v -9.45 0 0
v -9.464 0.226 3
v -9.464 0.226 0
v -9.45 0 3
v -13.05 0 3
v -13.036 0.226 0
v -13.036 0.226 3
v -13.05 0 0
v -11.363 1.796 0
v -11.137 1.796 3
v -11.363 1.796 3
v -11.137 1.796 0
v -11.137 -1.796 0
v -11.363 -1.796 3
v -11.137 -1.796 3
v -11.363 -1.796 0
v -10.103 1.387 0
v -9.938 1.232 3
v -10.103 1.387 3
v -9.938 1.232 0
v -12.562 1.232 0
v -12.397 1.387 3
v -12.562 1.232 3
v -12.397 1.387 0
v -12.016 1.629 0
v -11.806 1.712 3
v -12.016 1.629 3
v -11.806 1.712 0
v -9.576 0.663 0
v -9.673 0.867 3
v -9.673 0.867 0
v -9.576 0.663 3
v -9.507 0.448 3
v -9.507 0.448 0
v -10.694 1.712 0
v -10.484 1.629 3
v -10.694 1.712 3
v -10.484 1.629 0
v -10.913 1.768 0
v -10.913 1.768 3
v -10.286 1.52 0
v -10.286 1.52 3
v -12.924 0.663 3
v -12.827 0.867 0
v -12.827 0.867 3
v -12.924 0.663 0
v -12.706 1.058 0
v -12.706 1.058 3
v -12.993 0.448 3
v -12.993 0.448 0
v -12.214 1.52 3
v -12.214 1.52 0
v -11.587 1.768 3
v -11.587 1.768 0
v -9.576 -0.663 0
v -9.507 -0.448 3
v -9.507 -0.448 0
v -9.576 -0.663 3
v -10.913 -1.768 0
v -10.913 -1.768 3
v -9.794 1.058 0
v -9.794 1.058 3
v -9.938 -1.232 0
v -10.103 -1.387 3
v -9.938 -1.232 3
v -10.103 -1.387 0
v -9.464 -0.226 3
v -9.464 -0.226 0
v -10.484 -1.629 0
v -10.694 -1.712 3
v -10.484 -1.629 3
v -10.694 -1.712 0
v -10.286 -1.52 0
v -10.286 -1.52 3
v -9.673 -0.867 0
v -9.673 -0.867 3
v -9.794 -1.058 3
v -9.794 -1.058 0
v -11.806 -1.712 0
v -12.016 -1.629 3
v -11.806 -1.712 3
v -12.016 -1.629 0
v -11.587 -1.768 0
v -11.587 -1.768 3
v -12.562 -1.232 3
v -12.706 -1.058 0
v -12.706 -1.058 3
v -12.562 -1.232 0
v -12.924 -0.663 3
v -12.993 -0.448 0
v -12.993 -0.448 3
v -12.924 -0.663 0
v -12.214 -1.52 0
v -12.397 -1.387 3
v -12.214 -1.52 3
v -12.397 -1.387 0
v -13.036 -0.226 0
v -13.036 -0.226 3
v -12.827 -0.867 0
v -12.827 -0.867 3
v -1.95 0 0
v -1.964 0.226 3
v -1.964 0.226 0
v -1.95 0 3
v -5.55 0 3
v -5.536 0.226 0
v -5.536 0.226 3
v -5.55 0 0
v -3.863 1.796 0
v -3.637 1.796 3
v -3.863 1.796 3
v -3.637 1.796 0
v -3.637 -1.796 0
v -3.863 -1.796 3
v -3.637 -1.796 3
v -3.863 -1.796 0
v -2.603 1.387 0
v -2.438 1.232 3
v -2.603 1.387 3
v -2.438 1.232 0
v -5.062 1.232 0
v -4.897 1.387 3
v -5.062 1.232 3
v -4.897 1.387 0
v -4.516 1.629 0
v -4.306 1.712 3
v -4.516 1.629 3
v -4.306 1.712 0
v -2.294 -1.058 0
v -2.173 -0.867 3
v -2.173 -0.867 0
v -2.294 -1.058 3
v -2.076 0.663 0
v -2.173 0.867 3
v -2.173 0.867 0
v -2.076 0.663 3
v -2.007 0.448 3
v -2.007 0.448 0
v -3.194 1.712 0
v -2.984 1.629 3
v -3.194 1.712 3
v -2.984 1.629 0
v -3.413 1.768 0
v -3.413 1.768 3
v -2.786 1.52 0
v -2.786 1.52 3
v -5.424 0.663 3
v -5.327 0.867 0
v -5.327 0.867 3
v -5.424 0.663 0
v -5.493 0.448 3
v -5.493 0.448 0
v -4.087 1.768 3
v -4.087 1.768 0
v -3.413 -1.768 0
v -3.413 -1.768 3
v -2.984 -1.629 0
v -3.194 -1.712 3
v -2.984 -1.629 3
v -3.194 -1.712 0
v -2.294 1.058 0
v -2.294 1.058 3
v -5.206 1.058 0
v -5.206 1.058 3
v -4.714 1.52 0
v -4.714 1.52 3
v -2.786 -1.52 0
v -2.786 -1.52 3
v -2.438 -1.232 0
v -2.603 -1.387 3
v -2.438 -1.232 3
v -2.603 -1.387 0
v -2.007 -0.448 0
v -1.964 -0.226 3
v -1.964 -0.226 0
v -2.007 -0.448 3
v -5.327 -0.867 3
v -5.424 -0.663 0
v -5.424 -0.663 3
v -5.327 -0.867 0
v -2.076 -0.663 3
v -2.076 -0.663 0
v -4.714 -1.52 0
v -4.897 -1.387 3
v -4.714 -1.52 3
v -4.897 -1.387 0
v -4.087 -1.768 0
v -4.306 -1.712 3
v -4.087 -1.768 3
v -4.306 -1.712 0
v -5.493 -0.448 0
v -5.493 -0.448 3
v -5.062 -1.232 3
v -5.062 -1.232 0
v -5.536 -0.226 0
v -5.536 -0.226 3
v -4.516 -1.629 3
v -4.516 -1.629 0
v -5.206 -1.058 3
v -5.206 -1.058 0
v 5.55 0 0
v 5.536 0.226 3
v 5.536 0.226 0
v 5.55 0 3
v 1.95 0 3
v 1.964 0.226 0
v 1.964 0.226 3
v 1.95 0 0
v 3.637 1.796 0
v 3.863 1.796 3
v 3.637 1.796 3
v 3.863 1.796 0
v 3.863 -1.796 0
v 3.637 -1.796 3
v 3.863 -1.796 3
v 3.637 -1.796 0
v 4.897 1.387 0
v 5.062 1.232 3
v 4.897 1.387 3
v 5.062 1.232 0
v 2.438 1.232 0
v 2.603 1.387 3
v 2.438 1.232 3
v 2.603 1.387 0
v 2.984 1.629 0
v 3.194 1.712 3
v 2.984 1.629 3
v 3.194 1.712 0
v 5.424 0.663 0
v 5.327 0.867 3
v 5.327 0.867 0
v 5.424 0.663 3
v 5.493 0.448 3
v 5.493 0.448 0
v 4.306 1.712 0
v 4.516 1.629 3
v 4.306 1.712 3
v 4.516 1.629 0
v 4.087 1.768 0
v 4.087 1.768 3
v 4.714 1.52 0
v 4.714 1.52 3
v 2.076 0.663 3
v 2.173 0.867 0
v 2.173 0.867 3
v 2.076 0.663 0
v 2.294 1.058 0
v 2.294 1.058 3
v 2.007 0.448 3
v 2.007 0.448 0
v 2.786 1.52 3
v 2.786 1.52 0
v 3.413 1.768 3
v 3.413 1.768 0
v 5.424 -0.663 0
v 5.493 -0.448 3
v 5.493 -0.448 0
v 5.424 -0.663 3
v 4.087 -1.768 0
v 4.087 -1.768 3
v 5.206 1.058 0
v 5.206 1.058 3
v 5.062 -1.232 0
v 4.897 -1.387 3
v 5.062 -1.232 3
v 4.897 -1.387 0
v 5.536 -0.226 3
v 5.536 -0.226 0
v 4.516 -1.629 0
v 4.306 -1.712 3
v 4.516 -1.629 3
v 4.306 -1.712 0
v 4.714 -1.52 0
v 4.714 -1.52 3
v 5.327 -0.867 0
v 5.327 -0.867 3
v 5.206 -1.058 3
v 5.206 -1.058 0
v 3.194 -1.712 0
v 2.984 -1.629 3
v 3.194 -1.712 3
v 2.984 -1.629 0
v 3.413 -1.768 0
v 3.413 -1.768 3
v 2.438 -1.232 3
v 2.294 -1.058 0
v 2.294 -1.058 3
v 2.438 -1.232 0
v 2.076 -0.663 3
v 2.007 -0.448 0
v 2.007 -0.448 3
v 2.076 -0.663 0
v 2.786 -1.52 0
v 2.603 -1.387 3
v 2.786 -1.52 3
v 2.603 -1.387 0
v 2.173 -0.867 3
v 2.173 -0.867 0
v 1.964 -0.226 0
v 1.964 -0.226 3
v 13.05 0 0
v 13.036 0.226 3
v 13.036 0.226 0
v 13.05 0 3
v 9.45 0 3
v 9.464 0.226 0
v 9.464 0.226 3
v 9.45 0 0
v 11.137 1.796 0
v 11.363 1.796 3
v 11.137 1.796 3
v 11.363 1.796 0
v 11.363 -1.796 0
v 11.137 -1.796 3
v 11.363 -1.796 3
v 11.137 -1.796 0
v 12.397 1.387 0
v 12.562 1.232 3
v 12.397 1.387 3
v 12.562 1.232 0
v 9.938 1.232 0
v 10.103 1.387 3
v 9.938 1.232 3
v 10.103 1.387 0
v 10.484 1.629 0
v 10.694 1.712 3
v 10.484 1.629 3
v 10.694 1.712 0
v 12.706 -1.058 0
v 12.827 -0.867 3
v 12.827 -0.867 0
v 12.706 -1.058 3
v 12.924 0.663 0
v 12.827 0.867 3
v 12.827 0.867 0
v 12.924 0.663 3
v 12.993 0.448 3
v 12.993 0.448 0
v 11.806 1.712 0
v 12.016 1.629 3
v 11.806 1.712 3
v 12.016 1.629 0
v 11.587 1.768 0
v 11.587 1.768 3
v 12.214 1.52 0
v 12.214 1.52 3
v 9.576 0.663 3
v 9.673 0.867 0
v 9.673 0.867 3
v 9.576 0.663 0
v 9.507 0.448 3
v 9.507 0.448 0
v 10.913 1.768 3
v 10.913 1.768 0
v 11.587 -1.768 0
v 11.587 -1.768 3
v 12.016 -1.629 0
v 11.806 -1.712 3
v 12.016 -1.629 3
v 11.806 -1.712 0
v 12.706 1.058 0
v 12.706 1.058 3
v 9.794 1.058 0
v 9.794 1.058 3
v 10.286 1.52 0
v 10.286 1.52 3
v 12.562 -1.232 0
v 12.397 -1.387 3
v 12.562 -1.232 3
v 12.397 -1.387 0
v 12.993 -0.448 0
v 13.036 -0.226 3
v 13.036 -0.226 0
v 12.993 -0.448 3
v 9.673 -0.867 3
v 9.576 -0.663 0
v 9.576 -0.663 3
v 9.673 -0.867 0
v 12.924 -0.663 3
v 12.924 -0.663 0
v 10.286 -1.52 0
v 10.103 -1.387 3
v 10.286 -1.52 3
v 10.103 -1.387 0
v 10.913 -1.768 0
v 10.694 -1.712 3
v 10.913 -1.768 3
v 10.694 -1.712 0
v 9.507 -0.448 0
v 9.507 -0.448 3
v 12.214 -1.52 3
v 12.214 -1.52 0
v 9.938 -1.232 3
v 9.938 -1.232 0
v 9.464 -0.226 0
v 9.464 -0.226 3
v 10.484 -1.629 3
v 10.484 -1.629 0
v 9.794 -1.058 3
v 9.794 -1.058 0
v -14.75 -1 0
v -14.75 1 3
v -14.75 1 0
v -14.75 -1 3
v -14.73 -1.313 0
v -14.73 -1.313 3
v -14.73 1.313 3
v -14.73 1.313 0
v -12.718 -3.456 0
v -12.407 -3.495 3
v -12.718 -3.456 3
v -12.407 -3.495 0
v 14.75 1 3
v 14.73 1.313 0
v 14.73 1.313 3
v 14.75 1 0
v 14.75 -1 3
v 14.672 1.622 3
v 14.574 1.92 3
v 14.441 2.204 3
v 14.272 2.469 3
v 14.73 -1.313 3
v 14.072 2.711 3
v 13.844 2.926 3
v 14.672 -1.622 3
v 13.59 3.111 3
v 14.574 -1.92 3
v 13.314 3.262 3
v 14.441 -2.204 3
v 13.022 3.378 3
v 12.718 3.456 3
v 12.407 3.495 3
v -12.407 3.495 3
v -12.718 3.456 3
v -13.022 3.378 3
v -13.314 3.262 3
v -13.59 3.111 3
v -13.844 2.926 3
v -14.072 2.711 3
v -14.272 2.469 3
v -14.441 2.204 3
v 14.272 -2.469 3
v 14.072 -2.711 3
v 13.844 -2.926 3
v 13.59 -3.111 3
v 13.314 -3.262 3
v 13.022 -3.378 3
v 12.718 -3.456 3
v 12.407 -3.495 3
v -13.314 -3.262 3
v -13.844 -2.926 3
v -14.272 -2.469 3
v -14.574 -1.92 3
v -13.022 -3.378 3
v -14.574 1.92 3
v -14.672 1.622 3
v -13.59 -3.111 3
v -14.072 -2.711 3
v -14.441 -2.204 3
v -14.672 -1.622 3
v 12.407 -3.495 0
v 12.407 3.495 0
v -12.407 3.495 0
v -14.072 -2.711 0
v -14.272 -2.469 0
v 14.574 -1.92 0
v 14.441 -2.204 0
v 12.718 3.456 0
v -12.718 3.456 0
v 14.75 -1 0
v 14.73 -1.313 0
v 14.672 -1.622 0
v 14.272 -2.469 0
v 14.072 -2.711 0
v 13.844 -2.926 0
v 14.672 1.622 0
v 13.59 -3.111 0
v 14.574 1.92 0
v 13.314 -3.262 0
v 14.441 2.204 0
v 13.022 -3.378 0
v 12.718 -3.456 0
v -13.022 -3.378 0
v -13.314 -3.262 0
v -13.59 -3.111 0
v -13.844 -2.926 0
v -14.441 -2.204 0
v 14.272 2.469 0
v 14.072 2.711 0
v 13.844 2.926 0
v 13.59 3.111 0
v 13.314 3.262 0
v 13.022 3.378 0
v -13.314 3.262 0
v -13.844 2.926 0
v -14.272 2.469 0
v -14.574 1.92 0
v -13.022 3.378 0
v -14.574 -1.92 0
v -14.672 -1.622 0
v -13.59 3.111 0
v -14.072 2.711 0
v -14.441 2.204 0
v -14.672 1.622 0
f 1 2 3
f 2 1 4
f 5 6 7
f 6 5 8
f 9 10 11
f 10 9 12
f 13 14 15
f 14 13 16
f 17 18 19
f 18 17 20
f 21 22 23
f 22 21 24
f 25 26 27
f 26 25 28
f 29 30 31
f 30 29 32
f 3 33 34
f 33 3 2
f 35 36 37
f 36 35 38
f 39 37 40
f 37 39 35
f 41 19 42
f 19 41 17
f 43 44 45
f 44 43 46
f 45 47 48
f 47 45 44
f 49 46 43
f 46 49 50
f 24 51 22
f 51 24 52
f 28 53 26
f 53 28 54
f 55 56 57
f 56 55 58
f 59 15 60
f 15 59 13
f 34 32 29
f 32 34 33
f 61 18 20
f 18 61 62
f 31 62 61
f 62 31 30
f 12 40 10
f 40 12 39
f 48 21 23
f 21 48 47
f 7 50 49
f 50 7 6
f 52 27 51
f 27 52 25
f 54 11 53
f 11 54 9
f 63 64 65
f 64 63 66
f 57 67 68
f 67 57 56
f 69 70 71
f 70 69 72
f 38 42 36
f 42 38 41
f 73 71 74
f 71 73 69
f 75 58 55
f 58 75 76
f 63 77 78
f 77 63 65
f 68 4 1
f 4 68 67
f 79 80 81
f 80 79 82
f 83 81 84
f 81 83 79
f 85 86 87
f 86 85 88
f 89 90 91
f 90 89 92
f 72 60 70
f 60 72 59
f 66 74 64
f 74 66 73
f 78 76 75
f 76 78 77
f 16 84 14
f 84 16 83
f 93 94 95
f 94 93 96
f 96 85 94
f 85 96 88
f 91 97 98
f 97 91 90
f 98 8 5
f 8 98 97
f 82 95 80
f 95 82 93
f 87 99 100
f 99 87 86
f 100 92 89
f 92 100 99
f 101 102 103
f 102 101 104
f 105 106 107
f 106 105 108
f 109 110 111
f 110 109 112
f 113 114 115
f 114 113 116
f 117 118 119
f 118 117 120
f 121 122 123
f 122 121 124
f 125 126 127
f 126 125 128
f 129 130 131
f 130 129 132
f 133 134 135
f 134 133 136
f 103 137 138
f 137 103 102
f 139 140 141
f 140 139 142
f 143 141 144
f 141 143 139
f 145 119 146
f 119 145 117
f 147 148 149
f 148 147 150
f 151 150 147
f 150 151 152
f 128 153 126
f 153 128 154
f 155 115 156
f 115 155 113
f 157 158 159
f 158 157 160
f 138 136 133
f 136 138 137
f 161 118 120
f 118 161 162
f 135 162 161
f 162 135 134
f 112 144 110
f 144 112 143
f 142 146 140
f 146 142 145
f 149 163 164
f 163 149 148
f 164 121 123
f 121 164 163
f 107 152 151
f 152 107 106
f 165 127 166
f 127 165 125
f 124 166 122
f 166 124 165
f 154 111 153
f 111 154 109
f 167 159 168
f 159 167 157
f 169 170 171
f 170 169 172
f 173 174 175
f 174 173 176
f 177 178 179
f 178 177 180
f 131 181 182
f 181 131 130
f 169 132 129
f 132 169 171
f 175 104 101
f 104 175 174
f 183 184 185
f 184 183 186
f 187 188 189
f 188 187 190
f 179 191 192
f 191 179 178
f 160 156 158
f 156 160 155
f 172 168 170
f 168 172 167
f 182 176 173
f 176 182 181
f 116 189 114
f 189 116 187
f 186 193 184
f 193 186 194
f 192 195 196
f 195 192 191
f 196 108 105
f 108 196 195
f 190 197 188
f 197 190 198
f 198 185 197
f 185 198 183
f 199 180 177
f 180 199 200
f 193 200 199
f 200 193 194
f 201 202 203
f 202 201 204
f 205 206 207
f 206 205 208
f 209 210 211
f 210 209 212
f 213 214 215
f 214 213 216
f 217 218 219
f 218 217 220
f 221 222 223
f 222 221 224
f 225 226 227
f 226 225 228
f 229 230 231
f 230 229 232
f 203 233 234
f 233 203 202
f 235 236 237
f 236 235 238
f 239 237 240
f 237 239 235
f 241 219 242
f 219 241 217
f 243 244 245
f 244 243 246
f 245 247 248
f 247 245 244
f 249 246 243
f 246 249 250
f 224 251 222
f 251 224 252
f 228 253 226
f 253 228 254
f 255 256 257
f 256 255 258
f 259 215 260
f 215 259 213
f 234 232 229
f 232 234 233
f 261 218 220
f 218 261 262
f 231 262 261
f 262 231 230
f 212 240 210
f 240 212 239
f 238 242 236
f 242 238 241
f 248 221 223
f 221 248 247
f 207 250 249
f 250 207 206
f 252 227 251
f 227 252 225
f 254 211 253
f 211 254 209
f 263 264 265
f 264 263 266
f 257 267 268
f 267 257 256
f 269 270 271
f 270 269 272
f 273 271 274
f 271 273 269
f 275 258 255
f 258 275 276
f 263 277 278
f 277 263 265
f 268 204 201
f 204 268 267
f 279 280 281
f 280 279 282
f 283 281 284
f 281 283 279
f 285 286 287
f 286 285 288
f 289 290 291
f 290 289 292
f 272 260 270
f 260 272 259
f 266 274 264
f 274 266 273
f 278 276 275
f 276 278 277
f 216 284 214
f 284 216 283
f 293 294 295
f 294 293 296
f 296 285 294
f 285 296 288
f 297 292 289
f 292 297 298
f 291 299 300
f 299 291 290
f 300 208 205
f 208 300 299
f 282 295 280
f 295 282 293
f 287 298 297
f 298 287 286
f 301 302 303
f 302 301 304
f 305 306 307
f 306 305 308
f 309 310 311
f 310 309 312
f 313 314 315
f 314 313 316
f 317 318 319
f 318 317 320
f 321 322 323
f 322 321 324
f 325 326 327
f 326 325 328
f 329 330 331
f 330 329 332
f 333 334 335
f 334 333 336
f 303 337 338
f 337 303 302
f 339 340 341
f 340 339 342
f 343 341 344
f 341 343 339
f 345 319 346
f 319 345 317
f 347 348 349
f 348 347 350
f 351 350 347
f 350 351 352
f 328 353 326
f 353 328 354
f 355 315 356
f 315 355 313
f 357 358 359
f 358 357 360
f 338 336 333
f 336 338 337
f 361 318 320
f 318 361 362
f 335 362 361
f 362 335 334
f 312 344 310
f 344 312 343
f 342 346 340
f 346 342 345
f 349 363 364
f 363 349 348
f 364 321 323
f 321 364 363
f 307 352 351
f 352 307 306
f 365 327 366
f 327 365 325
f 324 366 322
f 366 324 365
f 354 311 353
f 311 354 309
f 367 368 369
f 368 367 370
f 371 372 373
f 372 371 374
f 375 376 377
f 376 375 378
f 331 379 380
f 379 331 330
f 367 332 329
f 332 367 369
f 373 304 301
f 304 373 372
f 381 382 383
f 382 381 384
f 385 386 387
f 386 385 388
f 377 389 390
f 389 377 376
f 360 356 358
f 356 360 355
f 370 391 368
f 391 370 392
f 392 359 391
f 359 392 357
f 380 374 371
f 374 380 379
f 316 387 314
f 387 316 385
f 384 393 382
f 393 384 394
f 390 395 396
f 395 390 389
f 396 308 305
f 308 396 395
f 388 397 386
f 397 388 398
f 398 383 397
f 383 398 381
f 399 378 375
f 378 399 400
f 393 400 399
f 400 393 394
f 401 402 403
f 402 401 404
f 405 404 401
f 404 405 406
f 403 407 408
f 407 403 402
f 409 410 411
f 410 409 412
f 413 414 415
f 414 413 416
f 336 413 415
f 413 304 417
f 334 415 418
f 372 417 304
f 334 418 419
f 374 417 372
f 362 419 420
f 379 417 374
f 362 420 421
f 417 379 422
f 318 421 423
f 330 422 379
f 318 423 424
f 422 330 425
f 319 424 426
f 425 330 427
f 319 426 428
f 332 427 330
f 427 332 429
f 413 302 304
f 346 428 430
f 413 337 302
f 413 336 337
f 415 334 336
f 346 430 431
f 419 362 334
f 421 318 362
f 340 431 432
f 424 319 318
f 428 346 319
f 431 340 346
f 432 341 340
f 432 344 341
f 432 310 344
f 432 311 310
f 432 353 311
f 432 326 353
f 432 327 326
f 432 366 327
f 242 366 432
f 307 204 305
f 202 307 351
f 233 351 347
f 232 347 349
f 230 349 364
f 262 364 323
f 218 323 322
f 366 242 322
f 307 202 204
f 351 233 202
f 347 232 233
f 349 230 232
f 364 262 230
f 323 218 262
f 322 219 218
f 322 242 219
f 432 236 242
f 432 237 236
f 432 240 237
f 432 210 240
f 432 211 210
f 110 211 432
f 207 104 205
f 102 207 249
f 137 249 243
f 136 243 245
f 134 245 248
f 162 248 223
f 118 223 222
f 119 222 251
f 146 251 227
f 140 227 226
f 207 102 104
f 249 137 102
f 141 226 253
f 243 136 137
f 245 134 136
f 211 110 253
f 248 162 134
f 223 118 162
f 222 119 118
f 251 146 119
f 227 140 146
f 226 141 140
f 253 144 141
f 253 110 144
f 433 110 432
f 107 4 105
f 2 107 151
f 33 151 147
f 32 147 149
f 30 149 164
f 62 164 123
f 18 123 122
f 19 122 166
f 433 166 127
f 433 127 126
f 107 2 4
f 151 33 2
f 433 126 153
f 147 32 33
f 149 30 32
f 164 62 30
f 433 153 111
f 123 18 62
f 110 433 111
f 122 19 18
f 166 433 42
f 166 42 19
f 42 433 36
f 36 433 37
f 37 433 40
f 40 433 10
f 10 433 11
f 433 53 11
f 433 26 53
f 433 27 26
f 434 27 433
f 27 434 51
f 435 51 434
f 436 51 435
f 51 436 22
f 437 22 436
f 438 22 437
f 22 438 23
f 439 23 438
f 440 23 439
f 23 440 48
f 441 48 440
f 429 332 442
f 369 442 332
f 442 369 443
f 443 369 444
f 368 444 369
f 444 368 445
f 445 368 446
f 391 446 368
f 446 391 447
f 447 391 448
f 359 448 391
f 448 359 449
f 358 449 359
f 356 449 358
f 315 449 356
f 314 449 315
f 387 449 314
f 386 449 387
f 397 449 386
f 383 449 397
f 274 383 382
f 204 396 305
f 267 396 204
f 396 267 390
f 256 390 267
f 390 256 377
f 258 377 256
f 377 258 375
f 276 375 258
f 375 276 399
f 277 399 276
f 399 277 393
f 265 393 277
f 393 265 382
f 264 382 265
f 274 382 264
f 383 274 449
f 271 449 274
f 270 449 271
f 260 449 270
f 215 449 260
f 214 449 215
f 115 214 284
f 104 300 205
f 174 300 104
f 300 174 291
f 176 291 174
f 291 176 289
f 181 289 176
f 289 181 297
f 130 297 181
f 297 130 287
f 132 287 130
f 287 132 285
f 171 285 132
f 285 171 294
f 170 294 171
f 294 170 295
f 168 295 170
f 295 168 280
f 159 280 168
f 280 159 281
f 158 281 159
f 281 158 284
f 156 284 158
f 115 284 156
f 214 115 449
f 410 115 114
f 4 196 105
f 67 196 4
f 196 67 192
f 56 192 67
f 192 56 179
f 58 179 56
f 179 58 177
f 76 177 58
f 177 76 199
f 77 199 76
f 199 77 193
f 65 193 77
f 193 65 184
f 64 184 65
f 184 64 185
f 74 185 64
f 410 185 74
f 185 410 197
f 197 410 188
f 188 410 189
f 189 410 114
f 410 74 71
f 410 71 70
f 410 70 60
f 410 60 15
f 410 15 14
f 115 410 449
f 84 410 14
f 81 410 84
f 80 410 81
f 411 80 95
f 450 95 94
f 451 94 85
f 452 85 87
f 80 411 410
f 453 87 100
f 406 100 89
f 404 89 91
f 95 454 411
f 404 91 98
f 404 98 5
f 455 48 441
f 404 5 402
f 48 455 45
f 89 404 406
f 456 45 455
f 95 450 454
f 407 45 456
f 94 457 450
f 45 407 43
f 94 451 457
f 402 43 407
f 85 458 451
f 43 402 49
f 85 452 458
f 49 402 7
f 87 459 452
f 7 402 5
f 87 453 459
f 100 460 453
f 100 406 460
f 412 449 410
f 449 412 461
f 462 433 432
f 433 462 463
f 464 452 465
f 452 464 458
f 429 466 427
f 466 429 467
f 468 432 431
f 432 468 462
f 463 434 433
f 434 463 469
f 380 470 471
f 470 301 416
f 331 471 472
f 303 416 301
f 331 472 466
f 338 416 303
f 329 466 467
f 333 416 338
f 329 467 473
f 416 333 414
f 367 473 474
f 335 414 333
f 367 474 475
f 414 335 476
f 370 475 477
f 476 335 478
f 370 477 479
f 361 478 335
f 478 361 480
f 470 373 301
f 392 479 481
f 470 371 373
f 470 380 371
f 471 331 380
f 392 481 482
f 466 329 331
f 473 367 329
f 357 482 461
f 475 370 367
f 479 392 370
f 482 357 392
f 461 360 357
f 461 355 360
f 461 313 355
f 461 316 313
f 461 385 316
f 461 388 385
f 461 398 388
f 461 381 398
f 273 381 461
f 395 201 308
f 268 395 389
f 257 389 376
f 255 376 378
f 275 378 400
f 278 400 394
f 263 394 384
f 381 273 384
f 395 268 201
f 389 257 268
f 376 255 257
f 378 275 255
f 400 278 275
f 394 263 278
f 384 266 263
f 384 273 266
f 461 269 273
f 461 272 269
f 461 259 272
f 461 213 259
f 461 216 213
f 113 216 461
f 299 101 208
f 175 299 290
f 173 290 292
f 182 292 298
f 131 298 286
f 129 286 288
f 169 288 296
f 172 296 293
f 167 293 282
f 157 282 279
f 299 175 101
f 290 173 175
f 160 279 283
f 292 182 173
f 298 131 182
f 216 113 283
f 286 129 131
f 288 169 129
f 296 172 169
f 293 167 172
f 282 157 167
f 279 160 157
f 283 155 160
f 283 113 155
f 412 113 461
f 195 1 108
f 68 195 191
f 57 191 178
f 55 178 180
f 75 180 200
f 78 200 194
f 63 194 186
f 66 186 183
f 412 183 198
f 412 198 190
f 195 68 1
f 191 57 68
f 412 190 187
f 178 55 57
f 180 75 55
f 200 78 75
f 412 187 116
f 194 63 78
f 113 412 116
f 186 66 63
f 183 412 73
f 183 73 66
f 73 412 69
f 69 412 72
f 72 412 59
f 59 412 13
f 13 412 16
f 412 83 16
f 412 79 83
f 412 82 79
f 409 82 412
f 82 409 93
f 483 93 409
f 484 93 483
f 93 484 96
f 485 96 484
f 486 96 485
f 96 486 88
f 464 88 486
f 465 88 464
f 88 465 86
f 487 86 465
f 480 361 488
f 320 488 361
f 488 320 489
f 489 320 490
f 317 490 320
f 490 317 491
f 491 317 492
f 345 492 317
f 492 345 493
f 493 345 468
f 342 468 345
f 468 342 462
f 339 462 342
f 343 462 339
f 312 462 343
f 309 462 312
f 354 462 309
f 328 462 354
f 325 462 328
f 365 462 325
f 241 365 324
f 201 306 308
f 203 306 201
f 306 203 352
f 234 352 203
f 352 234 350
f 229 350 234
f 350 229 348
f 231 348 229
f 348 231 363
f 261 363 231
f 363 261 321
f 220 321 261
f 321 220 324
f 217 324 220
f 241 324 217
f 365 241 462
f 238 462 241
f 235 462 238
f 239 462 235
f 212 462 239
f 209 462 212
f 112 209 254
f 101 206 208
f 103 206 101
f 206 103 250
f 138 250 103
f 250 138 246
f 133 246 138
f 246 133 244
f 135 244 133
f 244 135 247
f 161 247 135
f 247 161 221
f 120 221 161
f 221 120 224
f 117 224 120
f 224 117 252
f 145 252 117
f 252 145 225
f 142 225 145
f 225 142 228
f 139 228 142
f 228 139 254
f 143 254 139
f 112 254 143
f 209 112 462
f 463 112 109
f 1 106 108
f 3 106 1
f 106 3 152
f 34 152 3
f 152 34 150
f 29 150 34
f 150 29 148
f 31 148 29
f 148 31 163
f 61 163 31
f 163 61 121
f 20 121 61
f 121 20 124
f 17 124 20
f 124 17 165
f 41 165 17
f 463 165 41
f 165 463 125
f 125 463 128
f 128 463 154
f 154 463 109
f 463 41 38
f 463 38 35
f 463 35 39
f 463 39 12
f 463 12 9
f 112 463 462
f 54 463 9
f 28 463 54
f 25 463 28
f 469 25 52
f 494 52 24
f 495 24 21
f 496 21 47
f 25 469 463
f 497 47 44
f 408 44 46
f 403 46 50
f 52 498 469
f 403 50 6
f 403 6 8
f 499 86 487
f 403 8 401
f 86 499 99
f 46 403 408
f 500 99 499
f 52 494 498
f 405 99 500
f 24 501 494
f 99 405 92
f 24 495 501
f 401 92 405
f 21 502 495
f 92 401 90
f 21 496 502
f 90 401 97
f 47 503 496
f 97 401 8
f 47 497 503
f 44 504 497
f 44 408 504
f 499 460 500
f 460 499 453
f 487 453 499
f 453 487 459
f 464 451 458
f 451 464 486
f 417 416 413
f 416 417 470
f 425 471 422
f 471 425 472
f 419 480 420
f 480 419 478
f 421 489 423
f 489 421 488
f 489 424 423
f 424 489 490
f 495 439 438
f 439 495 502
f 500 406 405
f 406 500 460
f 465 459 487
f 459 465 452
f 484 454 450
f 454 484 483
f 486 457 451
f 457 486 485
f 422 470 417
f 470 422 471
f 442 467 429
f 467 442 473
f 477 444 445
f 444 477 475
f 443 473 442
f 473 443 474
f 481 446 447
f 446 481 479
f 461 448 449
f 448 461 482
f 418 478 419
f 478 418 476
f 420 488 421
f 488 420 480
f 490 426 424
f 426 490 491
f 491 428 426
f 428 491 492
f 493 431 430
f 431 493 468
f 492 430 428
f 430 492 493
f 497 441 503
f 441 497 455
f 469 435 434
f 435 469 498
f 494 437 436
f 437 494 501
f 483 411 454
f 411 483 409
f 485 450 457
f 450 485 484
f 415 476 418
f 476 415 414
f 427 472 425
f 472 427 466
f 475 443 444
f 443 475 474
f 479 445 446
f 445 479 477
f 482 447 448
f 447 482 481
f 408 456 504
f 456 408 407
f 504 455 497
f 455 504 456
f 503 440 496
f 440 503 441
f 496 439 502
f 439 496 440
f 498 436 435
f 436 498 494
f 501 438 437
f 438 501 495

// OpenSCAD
$fn = 50;


difference() {
	union() {
		translate(v = [0, 0, 0]) {
			rotate(a = [0, 0, 0]) {
				hull() {
					translate(v = [-12.2500000000, 1.0000000000, 0]) {
						rotate(a = [0, 0, 0]) {
							translate(v = [0, 0, 0]) {
								rotate(a = [0, 0, 0]) {
									cylinder(h = 3, r = 2.5000000000);
								}
							}
						}
					}
					translate(v = [12.2500000000, 1.0000000000, 0]) {
						rotate(a = [0, 0, 0]) {
							translate(v = [0, 0, 0]) {
								rotate(a = [0, 0, 0]) {
									cylinder(h = 3, r = 2.5000000000);
								}
							}
						}
					}
					translate(v = [-12.2500000000, -1.0000000000, 0]) {
						rotate(a = [0, 0, 0]) {
							translate(v = [0, 0, 0]) {
								rotate(a = [0, 0, 0]) {
									cylinder(h = 3, r = 2.5000000000);
								}
							}
						}
					}
					translate(v = [12.2500000000, -1.0000000000, 0]) {
						rotate(a = [0, 0, 0]) {
							translate(v = [0, 0, 0]) {
								rotate(a = [0, 0, 0]) {
									cylinder(h = 3, r = 2.5000000000);
								}
							}
						}
					}
				}
			}
		}
	}
	union() {
		translate(v = [-11.2500000000, 0.0000000000, 0]) {
			rotate(a = [0, 0, 0]) {
				translate(v = [0, 0, -50]) {
					rotate(a = [0, 0, 0]) {
						cylinder(h = 100, r = 1.8000000000);
					}
				}
			}
		}
		translate(v = [-3.7500000000, 0.0000000000, 0]) {
			rotate(a = [0, 0, 0]) {
				translate(v = [0, 0, -50]) {
					rotate(a = [0, 0, 0]) {
						cylinder(h = 100, r = 1.8000000000);
					}
				}
			}
		}
		translate(v = [3.7500000000, 0.0000000000, 0]) {
			rotate(a = [0, 0, 0]) {
				translate(v = [0, 0, -50]) {
					rotate(a = [0, 0, 0]) {
						cylinder(h = 100, r = 1.8000000000);
					}
				}
			}
		}
		translate(v = [11.2500000000, 0.0000000000, 0]) {
			rotate(a = [0, 0, 0]) {
				translate(v = [0, 0, -50]) {
					rotate(a = [0, 0, 0]) {
						cylinder(h = 100, r = 1.8000000000);
					}
				}
			}
		}
	}
}
